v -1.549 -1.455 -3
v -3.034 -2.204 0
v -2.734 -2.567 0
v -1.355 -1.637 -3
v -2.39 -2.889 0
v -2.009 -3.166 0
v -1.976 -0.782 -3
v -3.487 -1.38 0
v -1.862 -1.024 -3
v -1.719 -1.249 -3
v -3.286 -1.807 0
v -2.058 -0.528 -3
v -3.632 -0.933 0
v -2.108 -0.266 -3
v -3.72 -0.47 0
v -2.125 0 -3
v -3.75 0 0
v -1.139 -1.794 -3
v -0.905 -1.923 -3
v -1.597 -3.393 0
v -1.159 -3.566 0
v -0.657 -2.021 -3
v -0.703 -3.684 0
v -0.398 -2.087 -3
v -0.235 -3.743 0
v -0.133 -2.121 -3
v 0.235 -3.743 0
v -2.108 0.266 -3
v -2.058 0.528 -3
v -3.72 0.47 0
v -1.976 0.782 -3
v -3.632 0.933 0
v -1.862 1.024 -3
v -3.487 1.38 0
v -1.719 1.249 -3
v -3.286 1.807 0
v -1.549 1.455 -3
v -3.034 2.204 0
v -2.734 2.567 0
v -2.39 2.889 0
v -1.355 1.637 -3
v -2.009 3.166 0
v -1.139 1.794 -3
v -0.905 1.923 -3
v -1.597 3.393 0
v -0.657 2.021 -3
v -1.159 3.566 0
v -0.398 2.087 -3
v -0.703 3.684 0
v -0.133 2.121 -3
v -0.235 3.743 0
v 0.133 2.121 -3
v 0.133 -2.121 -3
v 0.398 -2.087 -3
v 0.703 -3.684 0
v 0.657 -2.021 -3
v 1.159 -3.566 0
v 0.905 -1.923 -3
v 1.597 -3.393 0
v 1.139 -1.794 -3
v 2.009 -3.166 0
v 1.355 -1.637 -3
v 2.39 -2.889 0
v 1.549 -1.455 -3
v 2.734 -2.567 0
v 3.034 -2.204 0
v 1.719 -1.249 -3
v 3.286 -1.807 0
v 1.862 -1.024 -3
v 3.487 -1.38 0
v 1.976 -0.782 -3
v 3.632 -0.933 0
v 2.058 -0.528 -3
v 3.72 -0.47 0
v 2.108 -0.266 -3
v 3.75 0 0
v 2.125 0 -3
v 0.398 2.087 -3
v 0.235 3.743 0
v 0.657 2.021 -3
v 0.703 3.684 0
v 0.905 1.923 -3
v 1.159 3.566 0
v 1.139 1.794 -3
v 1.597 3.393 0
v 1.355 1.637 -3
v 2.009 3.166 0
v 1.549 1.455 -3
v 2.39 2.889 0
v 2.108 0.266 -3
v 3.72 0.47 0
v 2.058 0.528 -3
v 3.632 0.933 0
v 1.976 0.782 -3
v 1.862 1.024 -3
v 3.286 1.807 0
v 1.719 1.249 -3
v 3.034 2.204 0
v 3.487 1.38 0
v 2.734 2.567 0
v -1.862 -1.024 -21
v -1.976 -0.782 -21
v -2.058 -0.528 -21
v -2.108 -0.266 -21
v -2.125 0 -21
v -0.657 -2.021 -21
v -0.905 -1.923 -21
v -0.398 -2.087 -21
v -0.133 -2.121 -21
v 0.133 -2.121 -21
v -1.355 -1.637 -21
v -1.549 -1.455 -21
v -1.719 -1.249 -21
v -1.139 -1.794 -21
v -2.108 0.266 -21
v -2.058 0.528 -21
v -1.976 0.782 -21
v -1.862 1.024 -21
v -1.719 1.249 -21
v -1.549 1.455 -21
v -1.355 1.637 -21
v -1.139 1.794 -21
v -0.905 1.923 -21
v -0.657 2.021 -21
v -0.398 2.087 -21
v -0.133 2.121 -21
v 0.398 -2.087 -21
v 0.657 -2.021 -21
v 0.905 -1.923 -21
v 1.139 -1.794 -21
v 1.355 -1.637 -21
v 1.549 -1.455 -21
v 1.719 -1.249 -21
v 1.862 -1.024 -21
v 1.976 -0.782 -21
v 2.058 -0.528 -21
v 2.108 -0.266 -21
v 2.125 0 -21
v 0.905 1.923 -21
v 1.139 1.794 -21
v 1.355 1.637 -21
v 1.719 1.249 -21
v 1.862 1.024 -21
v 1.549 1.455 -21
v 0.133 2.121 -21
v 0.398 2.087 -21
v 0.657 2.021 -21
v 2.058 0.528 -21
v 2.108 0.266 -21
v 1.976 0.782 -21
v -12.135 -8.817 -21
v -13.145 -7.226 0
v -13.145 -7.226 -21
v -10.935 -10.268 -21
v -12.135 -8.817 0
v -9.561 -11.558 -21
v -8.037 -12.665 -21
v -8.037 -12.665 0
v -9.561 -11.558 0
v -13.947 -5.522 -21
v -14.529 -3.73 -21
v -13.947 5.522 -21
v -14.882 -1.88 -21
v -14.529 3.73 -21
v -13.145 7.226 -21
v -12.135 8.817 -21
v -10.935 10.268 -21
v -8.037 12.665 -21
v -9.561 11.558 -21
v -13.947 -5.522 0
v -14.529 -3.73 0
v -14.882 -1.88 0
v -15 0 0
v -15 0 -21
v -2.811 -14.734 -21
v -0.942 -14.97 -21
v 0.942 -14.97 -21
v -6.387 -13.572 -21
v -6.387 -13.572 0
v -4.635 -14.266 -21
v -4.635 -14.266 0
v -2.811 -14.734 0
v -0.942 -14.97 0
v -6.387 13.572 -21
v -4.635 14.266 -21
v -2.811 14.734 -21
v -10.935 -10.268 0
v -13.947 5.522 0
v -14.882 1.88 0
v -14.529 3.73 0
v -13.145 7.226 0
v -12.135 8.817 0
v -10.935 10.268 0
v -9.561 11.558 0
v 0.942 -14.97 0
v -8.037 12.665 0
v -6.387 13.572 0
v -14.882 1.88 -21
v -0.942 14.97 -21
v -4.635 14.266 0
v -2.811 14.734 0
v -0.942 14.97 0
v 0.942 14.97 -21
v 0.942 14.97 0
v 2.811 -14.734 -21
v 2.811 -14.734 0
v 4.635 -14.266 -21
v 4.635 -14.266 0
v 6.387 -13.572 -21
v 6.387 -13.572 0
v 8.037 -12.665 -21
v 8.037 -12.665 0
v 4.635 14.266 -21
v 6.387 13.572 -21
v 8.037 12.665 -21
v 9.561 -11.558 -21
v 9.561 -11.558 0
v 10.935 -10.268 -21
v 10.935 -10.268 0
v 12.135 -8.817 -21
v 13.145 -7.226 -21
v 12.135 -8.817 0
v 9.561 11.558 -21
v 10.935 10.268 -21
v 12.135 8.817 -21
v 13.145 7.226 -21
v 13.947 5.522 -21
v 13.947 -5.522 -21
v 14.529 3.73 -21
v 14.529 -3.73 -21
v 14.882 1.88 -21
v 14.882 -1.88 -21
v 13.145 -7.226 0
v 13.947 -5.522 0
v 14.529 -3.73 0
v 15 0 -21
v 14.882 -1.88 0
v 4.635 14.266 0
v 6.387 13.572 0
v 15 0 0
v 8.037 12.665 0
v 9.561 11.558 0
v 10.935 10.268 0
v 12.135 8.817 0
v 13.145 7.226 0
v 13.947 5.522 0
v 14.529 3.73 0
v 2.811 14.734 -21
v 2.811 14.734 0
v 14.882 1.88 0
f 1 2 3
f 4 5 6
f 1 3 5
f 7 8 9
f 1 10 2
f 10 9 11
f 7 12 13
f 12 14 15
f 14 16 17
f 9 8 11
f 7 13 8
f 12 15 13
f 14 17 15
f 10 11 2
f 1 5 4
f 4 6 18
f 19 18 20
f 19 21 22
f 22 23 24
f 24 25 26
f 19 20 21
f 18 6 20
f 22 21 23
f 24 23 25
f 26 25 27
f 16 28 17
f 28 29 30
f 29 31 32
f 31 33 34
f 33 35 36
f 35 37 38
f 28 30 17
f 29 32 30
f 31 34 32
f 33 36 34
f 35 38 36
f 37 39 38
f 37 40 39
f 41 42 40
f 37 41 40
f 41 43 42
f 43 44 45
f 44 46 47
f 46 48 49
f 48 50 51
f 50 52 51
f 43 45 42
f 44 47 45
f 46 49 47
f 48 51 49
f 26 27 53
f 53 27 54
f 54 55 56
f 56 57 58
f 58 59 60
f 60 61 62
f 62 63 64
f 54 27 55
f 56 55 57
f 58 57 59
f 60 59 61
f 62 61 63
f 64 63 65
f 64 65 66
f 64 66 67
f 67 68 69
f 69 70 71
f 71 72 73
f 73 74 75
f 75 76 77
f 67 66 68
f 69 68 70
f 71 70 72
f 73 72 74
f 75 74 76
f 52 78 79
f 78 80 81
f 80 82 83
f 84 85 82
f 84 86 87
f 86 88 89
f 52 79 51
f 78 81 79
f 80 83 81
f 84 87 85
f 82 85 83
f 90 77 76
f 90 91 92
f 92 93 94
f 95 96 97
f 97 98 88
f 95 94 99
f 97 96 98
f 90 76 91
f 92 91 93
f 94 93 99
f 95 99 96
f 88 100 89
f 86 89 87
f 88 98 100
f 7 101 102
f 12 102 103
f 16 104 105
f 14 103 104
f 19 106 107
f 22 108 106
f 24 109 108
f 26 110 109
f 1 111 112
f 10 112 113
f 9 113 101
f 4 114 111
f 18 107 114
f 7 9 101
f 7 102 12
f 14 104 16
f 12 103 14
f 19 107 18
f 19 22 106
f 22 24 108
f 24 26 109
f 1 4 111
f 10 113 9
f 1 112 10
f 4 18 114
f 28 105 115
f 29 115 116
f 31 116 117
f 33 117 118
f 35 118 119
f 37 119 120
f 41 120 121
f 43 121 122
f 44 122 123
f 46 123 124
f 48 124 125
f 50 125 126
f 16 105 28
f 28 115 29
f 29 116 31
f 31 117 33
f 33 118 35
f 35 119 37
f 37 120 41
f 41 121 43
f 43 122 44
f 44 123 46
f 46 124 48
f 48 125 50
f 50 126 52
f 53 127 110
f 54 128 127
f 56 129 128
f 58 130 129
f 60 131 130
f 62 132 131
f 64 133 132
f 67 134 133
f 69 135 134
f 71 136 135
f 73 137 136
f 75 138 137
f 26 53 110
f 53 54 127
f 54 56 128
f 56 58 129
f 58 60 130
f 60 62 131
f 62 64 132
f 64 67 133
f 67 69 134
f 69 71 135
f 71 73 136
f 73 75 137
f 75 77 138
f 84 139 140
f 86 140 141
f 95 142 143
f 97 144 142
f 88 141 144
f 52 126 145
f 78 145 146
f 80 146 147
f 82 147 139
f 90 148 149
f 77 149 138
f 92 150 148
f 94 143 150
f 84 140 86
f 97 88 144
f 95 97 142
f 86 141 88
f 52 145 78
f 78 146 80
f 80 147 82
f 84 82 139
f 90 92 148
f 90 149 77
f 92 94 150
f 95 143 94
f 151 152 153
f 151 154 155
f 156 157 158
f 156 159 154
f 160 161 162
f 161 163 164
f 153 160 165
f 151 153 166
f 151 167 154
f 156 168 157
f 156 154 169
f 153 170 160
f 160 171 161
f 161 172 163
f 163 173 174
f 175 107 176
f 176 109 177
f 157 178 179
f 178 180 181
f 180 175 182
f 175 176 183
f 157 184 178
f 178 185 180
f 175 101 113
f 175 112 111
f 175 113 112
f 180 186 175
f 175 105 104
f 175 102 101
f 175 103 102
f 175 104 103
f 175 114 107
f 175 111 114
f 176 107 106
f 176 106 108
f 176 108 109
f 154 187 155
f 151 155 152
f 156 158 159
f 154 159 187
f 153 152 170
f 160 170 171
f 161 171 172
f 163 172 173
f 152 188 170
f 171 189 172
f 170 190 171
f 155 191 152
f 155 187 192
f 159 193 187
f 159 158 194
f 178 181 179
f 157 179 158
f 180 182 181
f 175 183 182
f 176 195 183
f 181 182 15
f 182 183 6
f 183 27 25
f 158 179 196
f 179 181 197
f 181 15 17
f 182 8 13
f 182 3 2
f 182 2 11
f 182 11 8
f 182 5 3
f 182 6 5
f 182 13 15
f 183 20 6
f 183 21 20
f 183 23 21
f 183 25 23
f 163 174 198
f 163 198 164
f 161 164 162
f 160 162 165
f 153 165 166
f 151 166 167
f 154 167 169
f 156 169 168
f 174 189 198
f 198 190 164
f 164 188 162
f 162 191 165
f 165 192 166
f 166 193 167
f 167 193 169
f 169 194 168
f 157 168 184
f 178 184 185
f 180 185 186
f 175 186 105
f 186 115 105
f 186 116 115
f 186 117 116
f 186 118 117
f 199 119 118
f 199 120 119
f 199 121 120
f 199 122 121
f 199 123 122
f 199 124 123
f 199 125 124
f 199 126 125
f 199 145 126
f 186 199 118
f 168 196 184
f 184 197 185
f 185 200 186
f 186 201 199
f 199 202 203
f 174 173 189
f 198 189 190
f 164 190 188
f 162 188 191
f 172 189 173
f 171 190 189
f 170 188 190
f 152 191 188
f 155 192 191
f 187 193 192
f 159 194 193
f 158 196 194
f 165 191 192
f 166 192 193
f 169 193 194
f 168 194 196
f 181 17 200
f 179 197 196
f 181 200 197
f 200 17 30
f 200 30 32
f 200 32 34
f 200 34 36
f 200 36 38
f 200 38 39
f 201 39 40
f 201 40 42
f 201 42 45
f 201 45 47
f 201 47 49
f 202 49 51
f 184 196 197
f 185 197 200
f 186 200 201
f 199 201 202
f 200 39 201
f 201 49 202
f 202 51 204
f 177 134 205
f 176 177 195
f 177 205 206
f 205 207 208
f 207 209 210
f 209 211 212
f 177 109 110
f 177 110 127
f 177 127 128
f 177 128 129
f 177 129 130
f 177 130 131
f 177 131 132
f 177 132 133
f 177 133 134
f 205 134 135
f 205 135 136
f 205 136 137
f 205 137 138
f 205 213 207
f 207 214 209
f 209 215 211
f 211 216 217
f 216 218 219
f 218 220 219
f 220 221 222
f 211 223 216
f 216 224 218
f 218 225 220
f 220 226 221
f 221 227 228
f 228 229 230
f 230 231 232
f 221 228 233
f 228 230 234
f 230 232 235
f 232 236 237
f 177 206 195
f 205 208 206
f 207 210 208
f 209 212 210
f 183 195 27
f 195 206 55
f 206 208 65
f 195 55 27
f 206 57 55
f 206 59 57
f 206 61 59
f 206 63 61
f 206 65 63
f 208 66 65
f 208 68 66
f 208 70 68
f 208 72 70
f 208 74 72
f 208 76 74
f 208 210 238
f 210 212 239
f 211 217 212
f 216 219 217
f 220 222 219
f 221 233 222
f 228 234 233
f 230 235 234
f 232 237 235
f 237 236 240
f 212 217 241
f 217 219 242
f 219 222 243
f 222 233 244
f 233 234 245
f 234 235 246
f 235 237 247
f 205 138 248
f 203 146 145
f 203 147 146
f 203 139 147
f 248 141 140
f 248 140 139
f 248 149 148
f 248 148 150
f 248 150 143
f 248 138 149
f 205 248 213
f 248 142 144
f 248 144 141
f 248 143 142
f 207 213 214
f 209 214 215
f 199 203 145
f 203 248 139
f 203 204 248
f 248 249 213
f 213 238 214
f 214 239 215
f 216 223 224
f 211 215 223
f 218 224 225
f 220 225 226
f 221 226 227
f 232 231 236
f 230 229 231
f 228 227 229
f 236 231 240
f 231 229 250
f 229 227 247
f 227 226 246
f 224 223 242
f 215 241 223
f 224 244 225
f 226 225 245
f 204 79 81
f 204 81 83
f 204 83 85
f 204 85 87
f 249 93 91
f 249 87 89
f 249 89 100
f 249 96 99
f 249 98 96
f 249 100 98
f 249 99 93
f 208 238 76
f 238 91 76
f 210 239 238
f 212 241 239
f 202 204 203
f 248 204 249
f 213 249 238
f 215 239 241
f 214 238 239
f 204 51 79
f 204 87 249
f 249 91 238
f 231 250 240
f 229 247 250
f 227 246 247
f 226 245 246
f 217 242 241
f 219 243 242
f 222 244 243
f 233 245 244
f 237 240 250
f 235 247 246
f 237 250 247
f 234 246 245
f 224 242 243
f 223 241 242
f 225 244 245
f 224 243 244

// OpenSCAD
$fn = 50;

difference() {
	union() {
		translate(v = [0, 0, -21.0]) {
			cylinder(h = 21, r = 15.0);
		}
	}
	union() {
		translate(v = [0, 0, 0]) {
			rotate(a = [0, 0, 0]) {
				difference() {
					union() {
						translate(v = [0, 0, -24.0]) {
							cylinder(h = 24, r = 2.0);
						}
						translate(v = [0, 0, -3]) {
							cylinder(h = 3, r1 = 2.125, r2 = 3.75);
						}
						translate(v = [0, 0, -24.0]) {
							cylinder(h = 24, r = 2.125);
						}
						translate(v = [0, 0, -24.0]) {
							cylinder(h = 24, r = 2.0);
						}
					}
					union();
				}
			}
		}
	}
}
